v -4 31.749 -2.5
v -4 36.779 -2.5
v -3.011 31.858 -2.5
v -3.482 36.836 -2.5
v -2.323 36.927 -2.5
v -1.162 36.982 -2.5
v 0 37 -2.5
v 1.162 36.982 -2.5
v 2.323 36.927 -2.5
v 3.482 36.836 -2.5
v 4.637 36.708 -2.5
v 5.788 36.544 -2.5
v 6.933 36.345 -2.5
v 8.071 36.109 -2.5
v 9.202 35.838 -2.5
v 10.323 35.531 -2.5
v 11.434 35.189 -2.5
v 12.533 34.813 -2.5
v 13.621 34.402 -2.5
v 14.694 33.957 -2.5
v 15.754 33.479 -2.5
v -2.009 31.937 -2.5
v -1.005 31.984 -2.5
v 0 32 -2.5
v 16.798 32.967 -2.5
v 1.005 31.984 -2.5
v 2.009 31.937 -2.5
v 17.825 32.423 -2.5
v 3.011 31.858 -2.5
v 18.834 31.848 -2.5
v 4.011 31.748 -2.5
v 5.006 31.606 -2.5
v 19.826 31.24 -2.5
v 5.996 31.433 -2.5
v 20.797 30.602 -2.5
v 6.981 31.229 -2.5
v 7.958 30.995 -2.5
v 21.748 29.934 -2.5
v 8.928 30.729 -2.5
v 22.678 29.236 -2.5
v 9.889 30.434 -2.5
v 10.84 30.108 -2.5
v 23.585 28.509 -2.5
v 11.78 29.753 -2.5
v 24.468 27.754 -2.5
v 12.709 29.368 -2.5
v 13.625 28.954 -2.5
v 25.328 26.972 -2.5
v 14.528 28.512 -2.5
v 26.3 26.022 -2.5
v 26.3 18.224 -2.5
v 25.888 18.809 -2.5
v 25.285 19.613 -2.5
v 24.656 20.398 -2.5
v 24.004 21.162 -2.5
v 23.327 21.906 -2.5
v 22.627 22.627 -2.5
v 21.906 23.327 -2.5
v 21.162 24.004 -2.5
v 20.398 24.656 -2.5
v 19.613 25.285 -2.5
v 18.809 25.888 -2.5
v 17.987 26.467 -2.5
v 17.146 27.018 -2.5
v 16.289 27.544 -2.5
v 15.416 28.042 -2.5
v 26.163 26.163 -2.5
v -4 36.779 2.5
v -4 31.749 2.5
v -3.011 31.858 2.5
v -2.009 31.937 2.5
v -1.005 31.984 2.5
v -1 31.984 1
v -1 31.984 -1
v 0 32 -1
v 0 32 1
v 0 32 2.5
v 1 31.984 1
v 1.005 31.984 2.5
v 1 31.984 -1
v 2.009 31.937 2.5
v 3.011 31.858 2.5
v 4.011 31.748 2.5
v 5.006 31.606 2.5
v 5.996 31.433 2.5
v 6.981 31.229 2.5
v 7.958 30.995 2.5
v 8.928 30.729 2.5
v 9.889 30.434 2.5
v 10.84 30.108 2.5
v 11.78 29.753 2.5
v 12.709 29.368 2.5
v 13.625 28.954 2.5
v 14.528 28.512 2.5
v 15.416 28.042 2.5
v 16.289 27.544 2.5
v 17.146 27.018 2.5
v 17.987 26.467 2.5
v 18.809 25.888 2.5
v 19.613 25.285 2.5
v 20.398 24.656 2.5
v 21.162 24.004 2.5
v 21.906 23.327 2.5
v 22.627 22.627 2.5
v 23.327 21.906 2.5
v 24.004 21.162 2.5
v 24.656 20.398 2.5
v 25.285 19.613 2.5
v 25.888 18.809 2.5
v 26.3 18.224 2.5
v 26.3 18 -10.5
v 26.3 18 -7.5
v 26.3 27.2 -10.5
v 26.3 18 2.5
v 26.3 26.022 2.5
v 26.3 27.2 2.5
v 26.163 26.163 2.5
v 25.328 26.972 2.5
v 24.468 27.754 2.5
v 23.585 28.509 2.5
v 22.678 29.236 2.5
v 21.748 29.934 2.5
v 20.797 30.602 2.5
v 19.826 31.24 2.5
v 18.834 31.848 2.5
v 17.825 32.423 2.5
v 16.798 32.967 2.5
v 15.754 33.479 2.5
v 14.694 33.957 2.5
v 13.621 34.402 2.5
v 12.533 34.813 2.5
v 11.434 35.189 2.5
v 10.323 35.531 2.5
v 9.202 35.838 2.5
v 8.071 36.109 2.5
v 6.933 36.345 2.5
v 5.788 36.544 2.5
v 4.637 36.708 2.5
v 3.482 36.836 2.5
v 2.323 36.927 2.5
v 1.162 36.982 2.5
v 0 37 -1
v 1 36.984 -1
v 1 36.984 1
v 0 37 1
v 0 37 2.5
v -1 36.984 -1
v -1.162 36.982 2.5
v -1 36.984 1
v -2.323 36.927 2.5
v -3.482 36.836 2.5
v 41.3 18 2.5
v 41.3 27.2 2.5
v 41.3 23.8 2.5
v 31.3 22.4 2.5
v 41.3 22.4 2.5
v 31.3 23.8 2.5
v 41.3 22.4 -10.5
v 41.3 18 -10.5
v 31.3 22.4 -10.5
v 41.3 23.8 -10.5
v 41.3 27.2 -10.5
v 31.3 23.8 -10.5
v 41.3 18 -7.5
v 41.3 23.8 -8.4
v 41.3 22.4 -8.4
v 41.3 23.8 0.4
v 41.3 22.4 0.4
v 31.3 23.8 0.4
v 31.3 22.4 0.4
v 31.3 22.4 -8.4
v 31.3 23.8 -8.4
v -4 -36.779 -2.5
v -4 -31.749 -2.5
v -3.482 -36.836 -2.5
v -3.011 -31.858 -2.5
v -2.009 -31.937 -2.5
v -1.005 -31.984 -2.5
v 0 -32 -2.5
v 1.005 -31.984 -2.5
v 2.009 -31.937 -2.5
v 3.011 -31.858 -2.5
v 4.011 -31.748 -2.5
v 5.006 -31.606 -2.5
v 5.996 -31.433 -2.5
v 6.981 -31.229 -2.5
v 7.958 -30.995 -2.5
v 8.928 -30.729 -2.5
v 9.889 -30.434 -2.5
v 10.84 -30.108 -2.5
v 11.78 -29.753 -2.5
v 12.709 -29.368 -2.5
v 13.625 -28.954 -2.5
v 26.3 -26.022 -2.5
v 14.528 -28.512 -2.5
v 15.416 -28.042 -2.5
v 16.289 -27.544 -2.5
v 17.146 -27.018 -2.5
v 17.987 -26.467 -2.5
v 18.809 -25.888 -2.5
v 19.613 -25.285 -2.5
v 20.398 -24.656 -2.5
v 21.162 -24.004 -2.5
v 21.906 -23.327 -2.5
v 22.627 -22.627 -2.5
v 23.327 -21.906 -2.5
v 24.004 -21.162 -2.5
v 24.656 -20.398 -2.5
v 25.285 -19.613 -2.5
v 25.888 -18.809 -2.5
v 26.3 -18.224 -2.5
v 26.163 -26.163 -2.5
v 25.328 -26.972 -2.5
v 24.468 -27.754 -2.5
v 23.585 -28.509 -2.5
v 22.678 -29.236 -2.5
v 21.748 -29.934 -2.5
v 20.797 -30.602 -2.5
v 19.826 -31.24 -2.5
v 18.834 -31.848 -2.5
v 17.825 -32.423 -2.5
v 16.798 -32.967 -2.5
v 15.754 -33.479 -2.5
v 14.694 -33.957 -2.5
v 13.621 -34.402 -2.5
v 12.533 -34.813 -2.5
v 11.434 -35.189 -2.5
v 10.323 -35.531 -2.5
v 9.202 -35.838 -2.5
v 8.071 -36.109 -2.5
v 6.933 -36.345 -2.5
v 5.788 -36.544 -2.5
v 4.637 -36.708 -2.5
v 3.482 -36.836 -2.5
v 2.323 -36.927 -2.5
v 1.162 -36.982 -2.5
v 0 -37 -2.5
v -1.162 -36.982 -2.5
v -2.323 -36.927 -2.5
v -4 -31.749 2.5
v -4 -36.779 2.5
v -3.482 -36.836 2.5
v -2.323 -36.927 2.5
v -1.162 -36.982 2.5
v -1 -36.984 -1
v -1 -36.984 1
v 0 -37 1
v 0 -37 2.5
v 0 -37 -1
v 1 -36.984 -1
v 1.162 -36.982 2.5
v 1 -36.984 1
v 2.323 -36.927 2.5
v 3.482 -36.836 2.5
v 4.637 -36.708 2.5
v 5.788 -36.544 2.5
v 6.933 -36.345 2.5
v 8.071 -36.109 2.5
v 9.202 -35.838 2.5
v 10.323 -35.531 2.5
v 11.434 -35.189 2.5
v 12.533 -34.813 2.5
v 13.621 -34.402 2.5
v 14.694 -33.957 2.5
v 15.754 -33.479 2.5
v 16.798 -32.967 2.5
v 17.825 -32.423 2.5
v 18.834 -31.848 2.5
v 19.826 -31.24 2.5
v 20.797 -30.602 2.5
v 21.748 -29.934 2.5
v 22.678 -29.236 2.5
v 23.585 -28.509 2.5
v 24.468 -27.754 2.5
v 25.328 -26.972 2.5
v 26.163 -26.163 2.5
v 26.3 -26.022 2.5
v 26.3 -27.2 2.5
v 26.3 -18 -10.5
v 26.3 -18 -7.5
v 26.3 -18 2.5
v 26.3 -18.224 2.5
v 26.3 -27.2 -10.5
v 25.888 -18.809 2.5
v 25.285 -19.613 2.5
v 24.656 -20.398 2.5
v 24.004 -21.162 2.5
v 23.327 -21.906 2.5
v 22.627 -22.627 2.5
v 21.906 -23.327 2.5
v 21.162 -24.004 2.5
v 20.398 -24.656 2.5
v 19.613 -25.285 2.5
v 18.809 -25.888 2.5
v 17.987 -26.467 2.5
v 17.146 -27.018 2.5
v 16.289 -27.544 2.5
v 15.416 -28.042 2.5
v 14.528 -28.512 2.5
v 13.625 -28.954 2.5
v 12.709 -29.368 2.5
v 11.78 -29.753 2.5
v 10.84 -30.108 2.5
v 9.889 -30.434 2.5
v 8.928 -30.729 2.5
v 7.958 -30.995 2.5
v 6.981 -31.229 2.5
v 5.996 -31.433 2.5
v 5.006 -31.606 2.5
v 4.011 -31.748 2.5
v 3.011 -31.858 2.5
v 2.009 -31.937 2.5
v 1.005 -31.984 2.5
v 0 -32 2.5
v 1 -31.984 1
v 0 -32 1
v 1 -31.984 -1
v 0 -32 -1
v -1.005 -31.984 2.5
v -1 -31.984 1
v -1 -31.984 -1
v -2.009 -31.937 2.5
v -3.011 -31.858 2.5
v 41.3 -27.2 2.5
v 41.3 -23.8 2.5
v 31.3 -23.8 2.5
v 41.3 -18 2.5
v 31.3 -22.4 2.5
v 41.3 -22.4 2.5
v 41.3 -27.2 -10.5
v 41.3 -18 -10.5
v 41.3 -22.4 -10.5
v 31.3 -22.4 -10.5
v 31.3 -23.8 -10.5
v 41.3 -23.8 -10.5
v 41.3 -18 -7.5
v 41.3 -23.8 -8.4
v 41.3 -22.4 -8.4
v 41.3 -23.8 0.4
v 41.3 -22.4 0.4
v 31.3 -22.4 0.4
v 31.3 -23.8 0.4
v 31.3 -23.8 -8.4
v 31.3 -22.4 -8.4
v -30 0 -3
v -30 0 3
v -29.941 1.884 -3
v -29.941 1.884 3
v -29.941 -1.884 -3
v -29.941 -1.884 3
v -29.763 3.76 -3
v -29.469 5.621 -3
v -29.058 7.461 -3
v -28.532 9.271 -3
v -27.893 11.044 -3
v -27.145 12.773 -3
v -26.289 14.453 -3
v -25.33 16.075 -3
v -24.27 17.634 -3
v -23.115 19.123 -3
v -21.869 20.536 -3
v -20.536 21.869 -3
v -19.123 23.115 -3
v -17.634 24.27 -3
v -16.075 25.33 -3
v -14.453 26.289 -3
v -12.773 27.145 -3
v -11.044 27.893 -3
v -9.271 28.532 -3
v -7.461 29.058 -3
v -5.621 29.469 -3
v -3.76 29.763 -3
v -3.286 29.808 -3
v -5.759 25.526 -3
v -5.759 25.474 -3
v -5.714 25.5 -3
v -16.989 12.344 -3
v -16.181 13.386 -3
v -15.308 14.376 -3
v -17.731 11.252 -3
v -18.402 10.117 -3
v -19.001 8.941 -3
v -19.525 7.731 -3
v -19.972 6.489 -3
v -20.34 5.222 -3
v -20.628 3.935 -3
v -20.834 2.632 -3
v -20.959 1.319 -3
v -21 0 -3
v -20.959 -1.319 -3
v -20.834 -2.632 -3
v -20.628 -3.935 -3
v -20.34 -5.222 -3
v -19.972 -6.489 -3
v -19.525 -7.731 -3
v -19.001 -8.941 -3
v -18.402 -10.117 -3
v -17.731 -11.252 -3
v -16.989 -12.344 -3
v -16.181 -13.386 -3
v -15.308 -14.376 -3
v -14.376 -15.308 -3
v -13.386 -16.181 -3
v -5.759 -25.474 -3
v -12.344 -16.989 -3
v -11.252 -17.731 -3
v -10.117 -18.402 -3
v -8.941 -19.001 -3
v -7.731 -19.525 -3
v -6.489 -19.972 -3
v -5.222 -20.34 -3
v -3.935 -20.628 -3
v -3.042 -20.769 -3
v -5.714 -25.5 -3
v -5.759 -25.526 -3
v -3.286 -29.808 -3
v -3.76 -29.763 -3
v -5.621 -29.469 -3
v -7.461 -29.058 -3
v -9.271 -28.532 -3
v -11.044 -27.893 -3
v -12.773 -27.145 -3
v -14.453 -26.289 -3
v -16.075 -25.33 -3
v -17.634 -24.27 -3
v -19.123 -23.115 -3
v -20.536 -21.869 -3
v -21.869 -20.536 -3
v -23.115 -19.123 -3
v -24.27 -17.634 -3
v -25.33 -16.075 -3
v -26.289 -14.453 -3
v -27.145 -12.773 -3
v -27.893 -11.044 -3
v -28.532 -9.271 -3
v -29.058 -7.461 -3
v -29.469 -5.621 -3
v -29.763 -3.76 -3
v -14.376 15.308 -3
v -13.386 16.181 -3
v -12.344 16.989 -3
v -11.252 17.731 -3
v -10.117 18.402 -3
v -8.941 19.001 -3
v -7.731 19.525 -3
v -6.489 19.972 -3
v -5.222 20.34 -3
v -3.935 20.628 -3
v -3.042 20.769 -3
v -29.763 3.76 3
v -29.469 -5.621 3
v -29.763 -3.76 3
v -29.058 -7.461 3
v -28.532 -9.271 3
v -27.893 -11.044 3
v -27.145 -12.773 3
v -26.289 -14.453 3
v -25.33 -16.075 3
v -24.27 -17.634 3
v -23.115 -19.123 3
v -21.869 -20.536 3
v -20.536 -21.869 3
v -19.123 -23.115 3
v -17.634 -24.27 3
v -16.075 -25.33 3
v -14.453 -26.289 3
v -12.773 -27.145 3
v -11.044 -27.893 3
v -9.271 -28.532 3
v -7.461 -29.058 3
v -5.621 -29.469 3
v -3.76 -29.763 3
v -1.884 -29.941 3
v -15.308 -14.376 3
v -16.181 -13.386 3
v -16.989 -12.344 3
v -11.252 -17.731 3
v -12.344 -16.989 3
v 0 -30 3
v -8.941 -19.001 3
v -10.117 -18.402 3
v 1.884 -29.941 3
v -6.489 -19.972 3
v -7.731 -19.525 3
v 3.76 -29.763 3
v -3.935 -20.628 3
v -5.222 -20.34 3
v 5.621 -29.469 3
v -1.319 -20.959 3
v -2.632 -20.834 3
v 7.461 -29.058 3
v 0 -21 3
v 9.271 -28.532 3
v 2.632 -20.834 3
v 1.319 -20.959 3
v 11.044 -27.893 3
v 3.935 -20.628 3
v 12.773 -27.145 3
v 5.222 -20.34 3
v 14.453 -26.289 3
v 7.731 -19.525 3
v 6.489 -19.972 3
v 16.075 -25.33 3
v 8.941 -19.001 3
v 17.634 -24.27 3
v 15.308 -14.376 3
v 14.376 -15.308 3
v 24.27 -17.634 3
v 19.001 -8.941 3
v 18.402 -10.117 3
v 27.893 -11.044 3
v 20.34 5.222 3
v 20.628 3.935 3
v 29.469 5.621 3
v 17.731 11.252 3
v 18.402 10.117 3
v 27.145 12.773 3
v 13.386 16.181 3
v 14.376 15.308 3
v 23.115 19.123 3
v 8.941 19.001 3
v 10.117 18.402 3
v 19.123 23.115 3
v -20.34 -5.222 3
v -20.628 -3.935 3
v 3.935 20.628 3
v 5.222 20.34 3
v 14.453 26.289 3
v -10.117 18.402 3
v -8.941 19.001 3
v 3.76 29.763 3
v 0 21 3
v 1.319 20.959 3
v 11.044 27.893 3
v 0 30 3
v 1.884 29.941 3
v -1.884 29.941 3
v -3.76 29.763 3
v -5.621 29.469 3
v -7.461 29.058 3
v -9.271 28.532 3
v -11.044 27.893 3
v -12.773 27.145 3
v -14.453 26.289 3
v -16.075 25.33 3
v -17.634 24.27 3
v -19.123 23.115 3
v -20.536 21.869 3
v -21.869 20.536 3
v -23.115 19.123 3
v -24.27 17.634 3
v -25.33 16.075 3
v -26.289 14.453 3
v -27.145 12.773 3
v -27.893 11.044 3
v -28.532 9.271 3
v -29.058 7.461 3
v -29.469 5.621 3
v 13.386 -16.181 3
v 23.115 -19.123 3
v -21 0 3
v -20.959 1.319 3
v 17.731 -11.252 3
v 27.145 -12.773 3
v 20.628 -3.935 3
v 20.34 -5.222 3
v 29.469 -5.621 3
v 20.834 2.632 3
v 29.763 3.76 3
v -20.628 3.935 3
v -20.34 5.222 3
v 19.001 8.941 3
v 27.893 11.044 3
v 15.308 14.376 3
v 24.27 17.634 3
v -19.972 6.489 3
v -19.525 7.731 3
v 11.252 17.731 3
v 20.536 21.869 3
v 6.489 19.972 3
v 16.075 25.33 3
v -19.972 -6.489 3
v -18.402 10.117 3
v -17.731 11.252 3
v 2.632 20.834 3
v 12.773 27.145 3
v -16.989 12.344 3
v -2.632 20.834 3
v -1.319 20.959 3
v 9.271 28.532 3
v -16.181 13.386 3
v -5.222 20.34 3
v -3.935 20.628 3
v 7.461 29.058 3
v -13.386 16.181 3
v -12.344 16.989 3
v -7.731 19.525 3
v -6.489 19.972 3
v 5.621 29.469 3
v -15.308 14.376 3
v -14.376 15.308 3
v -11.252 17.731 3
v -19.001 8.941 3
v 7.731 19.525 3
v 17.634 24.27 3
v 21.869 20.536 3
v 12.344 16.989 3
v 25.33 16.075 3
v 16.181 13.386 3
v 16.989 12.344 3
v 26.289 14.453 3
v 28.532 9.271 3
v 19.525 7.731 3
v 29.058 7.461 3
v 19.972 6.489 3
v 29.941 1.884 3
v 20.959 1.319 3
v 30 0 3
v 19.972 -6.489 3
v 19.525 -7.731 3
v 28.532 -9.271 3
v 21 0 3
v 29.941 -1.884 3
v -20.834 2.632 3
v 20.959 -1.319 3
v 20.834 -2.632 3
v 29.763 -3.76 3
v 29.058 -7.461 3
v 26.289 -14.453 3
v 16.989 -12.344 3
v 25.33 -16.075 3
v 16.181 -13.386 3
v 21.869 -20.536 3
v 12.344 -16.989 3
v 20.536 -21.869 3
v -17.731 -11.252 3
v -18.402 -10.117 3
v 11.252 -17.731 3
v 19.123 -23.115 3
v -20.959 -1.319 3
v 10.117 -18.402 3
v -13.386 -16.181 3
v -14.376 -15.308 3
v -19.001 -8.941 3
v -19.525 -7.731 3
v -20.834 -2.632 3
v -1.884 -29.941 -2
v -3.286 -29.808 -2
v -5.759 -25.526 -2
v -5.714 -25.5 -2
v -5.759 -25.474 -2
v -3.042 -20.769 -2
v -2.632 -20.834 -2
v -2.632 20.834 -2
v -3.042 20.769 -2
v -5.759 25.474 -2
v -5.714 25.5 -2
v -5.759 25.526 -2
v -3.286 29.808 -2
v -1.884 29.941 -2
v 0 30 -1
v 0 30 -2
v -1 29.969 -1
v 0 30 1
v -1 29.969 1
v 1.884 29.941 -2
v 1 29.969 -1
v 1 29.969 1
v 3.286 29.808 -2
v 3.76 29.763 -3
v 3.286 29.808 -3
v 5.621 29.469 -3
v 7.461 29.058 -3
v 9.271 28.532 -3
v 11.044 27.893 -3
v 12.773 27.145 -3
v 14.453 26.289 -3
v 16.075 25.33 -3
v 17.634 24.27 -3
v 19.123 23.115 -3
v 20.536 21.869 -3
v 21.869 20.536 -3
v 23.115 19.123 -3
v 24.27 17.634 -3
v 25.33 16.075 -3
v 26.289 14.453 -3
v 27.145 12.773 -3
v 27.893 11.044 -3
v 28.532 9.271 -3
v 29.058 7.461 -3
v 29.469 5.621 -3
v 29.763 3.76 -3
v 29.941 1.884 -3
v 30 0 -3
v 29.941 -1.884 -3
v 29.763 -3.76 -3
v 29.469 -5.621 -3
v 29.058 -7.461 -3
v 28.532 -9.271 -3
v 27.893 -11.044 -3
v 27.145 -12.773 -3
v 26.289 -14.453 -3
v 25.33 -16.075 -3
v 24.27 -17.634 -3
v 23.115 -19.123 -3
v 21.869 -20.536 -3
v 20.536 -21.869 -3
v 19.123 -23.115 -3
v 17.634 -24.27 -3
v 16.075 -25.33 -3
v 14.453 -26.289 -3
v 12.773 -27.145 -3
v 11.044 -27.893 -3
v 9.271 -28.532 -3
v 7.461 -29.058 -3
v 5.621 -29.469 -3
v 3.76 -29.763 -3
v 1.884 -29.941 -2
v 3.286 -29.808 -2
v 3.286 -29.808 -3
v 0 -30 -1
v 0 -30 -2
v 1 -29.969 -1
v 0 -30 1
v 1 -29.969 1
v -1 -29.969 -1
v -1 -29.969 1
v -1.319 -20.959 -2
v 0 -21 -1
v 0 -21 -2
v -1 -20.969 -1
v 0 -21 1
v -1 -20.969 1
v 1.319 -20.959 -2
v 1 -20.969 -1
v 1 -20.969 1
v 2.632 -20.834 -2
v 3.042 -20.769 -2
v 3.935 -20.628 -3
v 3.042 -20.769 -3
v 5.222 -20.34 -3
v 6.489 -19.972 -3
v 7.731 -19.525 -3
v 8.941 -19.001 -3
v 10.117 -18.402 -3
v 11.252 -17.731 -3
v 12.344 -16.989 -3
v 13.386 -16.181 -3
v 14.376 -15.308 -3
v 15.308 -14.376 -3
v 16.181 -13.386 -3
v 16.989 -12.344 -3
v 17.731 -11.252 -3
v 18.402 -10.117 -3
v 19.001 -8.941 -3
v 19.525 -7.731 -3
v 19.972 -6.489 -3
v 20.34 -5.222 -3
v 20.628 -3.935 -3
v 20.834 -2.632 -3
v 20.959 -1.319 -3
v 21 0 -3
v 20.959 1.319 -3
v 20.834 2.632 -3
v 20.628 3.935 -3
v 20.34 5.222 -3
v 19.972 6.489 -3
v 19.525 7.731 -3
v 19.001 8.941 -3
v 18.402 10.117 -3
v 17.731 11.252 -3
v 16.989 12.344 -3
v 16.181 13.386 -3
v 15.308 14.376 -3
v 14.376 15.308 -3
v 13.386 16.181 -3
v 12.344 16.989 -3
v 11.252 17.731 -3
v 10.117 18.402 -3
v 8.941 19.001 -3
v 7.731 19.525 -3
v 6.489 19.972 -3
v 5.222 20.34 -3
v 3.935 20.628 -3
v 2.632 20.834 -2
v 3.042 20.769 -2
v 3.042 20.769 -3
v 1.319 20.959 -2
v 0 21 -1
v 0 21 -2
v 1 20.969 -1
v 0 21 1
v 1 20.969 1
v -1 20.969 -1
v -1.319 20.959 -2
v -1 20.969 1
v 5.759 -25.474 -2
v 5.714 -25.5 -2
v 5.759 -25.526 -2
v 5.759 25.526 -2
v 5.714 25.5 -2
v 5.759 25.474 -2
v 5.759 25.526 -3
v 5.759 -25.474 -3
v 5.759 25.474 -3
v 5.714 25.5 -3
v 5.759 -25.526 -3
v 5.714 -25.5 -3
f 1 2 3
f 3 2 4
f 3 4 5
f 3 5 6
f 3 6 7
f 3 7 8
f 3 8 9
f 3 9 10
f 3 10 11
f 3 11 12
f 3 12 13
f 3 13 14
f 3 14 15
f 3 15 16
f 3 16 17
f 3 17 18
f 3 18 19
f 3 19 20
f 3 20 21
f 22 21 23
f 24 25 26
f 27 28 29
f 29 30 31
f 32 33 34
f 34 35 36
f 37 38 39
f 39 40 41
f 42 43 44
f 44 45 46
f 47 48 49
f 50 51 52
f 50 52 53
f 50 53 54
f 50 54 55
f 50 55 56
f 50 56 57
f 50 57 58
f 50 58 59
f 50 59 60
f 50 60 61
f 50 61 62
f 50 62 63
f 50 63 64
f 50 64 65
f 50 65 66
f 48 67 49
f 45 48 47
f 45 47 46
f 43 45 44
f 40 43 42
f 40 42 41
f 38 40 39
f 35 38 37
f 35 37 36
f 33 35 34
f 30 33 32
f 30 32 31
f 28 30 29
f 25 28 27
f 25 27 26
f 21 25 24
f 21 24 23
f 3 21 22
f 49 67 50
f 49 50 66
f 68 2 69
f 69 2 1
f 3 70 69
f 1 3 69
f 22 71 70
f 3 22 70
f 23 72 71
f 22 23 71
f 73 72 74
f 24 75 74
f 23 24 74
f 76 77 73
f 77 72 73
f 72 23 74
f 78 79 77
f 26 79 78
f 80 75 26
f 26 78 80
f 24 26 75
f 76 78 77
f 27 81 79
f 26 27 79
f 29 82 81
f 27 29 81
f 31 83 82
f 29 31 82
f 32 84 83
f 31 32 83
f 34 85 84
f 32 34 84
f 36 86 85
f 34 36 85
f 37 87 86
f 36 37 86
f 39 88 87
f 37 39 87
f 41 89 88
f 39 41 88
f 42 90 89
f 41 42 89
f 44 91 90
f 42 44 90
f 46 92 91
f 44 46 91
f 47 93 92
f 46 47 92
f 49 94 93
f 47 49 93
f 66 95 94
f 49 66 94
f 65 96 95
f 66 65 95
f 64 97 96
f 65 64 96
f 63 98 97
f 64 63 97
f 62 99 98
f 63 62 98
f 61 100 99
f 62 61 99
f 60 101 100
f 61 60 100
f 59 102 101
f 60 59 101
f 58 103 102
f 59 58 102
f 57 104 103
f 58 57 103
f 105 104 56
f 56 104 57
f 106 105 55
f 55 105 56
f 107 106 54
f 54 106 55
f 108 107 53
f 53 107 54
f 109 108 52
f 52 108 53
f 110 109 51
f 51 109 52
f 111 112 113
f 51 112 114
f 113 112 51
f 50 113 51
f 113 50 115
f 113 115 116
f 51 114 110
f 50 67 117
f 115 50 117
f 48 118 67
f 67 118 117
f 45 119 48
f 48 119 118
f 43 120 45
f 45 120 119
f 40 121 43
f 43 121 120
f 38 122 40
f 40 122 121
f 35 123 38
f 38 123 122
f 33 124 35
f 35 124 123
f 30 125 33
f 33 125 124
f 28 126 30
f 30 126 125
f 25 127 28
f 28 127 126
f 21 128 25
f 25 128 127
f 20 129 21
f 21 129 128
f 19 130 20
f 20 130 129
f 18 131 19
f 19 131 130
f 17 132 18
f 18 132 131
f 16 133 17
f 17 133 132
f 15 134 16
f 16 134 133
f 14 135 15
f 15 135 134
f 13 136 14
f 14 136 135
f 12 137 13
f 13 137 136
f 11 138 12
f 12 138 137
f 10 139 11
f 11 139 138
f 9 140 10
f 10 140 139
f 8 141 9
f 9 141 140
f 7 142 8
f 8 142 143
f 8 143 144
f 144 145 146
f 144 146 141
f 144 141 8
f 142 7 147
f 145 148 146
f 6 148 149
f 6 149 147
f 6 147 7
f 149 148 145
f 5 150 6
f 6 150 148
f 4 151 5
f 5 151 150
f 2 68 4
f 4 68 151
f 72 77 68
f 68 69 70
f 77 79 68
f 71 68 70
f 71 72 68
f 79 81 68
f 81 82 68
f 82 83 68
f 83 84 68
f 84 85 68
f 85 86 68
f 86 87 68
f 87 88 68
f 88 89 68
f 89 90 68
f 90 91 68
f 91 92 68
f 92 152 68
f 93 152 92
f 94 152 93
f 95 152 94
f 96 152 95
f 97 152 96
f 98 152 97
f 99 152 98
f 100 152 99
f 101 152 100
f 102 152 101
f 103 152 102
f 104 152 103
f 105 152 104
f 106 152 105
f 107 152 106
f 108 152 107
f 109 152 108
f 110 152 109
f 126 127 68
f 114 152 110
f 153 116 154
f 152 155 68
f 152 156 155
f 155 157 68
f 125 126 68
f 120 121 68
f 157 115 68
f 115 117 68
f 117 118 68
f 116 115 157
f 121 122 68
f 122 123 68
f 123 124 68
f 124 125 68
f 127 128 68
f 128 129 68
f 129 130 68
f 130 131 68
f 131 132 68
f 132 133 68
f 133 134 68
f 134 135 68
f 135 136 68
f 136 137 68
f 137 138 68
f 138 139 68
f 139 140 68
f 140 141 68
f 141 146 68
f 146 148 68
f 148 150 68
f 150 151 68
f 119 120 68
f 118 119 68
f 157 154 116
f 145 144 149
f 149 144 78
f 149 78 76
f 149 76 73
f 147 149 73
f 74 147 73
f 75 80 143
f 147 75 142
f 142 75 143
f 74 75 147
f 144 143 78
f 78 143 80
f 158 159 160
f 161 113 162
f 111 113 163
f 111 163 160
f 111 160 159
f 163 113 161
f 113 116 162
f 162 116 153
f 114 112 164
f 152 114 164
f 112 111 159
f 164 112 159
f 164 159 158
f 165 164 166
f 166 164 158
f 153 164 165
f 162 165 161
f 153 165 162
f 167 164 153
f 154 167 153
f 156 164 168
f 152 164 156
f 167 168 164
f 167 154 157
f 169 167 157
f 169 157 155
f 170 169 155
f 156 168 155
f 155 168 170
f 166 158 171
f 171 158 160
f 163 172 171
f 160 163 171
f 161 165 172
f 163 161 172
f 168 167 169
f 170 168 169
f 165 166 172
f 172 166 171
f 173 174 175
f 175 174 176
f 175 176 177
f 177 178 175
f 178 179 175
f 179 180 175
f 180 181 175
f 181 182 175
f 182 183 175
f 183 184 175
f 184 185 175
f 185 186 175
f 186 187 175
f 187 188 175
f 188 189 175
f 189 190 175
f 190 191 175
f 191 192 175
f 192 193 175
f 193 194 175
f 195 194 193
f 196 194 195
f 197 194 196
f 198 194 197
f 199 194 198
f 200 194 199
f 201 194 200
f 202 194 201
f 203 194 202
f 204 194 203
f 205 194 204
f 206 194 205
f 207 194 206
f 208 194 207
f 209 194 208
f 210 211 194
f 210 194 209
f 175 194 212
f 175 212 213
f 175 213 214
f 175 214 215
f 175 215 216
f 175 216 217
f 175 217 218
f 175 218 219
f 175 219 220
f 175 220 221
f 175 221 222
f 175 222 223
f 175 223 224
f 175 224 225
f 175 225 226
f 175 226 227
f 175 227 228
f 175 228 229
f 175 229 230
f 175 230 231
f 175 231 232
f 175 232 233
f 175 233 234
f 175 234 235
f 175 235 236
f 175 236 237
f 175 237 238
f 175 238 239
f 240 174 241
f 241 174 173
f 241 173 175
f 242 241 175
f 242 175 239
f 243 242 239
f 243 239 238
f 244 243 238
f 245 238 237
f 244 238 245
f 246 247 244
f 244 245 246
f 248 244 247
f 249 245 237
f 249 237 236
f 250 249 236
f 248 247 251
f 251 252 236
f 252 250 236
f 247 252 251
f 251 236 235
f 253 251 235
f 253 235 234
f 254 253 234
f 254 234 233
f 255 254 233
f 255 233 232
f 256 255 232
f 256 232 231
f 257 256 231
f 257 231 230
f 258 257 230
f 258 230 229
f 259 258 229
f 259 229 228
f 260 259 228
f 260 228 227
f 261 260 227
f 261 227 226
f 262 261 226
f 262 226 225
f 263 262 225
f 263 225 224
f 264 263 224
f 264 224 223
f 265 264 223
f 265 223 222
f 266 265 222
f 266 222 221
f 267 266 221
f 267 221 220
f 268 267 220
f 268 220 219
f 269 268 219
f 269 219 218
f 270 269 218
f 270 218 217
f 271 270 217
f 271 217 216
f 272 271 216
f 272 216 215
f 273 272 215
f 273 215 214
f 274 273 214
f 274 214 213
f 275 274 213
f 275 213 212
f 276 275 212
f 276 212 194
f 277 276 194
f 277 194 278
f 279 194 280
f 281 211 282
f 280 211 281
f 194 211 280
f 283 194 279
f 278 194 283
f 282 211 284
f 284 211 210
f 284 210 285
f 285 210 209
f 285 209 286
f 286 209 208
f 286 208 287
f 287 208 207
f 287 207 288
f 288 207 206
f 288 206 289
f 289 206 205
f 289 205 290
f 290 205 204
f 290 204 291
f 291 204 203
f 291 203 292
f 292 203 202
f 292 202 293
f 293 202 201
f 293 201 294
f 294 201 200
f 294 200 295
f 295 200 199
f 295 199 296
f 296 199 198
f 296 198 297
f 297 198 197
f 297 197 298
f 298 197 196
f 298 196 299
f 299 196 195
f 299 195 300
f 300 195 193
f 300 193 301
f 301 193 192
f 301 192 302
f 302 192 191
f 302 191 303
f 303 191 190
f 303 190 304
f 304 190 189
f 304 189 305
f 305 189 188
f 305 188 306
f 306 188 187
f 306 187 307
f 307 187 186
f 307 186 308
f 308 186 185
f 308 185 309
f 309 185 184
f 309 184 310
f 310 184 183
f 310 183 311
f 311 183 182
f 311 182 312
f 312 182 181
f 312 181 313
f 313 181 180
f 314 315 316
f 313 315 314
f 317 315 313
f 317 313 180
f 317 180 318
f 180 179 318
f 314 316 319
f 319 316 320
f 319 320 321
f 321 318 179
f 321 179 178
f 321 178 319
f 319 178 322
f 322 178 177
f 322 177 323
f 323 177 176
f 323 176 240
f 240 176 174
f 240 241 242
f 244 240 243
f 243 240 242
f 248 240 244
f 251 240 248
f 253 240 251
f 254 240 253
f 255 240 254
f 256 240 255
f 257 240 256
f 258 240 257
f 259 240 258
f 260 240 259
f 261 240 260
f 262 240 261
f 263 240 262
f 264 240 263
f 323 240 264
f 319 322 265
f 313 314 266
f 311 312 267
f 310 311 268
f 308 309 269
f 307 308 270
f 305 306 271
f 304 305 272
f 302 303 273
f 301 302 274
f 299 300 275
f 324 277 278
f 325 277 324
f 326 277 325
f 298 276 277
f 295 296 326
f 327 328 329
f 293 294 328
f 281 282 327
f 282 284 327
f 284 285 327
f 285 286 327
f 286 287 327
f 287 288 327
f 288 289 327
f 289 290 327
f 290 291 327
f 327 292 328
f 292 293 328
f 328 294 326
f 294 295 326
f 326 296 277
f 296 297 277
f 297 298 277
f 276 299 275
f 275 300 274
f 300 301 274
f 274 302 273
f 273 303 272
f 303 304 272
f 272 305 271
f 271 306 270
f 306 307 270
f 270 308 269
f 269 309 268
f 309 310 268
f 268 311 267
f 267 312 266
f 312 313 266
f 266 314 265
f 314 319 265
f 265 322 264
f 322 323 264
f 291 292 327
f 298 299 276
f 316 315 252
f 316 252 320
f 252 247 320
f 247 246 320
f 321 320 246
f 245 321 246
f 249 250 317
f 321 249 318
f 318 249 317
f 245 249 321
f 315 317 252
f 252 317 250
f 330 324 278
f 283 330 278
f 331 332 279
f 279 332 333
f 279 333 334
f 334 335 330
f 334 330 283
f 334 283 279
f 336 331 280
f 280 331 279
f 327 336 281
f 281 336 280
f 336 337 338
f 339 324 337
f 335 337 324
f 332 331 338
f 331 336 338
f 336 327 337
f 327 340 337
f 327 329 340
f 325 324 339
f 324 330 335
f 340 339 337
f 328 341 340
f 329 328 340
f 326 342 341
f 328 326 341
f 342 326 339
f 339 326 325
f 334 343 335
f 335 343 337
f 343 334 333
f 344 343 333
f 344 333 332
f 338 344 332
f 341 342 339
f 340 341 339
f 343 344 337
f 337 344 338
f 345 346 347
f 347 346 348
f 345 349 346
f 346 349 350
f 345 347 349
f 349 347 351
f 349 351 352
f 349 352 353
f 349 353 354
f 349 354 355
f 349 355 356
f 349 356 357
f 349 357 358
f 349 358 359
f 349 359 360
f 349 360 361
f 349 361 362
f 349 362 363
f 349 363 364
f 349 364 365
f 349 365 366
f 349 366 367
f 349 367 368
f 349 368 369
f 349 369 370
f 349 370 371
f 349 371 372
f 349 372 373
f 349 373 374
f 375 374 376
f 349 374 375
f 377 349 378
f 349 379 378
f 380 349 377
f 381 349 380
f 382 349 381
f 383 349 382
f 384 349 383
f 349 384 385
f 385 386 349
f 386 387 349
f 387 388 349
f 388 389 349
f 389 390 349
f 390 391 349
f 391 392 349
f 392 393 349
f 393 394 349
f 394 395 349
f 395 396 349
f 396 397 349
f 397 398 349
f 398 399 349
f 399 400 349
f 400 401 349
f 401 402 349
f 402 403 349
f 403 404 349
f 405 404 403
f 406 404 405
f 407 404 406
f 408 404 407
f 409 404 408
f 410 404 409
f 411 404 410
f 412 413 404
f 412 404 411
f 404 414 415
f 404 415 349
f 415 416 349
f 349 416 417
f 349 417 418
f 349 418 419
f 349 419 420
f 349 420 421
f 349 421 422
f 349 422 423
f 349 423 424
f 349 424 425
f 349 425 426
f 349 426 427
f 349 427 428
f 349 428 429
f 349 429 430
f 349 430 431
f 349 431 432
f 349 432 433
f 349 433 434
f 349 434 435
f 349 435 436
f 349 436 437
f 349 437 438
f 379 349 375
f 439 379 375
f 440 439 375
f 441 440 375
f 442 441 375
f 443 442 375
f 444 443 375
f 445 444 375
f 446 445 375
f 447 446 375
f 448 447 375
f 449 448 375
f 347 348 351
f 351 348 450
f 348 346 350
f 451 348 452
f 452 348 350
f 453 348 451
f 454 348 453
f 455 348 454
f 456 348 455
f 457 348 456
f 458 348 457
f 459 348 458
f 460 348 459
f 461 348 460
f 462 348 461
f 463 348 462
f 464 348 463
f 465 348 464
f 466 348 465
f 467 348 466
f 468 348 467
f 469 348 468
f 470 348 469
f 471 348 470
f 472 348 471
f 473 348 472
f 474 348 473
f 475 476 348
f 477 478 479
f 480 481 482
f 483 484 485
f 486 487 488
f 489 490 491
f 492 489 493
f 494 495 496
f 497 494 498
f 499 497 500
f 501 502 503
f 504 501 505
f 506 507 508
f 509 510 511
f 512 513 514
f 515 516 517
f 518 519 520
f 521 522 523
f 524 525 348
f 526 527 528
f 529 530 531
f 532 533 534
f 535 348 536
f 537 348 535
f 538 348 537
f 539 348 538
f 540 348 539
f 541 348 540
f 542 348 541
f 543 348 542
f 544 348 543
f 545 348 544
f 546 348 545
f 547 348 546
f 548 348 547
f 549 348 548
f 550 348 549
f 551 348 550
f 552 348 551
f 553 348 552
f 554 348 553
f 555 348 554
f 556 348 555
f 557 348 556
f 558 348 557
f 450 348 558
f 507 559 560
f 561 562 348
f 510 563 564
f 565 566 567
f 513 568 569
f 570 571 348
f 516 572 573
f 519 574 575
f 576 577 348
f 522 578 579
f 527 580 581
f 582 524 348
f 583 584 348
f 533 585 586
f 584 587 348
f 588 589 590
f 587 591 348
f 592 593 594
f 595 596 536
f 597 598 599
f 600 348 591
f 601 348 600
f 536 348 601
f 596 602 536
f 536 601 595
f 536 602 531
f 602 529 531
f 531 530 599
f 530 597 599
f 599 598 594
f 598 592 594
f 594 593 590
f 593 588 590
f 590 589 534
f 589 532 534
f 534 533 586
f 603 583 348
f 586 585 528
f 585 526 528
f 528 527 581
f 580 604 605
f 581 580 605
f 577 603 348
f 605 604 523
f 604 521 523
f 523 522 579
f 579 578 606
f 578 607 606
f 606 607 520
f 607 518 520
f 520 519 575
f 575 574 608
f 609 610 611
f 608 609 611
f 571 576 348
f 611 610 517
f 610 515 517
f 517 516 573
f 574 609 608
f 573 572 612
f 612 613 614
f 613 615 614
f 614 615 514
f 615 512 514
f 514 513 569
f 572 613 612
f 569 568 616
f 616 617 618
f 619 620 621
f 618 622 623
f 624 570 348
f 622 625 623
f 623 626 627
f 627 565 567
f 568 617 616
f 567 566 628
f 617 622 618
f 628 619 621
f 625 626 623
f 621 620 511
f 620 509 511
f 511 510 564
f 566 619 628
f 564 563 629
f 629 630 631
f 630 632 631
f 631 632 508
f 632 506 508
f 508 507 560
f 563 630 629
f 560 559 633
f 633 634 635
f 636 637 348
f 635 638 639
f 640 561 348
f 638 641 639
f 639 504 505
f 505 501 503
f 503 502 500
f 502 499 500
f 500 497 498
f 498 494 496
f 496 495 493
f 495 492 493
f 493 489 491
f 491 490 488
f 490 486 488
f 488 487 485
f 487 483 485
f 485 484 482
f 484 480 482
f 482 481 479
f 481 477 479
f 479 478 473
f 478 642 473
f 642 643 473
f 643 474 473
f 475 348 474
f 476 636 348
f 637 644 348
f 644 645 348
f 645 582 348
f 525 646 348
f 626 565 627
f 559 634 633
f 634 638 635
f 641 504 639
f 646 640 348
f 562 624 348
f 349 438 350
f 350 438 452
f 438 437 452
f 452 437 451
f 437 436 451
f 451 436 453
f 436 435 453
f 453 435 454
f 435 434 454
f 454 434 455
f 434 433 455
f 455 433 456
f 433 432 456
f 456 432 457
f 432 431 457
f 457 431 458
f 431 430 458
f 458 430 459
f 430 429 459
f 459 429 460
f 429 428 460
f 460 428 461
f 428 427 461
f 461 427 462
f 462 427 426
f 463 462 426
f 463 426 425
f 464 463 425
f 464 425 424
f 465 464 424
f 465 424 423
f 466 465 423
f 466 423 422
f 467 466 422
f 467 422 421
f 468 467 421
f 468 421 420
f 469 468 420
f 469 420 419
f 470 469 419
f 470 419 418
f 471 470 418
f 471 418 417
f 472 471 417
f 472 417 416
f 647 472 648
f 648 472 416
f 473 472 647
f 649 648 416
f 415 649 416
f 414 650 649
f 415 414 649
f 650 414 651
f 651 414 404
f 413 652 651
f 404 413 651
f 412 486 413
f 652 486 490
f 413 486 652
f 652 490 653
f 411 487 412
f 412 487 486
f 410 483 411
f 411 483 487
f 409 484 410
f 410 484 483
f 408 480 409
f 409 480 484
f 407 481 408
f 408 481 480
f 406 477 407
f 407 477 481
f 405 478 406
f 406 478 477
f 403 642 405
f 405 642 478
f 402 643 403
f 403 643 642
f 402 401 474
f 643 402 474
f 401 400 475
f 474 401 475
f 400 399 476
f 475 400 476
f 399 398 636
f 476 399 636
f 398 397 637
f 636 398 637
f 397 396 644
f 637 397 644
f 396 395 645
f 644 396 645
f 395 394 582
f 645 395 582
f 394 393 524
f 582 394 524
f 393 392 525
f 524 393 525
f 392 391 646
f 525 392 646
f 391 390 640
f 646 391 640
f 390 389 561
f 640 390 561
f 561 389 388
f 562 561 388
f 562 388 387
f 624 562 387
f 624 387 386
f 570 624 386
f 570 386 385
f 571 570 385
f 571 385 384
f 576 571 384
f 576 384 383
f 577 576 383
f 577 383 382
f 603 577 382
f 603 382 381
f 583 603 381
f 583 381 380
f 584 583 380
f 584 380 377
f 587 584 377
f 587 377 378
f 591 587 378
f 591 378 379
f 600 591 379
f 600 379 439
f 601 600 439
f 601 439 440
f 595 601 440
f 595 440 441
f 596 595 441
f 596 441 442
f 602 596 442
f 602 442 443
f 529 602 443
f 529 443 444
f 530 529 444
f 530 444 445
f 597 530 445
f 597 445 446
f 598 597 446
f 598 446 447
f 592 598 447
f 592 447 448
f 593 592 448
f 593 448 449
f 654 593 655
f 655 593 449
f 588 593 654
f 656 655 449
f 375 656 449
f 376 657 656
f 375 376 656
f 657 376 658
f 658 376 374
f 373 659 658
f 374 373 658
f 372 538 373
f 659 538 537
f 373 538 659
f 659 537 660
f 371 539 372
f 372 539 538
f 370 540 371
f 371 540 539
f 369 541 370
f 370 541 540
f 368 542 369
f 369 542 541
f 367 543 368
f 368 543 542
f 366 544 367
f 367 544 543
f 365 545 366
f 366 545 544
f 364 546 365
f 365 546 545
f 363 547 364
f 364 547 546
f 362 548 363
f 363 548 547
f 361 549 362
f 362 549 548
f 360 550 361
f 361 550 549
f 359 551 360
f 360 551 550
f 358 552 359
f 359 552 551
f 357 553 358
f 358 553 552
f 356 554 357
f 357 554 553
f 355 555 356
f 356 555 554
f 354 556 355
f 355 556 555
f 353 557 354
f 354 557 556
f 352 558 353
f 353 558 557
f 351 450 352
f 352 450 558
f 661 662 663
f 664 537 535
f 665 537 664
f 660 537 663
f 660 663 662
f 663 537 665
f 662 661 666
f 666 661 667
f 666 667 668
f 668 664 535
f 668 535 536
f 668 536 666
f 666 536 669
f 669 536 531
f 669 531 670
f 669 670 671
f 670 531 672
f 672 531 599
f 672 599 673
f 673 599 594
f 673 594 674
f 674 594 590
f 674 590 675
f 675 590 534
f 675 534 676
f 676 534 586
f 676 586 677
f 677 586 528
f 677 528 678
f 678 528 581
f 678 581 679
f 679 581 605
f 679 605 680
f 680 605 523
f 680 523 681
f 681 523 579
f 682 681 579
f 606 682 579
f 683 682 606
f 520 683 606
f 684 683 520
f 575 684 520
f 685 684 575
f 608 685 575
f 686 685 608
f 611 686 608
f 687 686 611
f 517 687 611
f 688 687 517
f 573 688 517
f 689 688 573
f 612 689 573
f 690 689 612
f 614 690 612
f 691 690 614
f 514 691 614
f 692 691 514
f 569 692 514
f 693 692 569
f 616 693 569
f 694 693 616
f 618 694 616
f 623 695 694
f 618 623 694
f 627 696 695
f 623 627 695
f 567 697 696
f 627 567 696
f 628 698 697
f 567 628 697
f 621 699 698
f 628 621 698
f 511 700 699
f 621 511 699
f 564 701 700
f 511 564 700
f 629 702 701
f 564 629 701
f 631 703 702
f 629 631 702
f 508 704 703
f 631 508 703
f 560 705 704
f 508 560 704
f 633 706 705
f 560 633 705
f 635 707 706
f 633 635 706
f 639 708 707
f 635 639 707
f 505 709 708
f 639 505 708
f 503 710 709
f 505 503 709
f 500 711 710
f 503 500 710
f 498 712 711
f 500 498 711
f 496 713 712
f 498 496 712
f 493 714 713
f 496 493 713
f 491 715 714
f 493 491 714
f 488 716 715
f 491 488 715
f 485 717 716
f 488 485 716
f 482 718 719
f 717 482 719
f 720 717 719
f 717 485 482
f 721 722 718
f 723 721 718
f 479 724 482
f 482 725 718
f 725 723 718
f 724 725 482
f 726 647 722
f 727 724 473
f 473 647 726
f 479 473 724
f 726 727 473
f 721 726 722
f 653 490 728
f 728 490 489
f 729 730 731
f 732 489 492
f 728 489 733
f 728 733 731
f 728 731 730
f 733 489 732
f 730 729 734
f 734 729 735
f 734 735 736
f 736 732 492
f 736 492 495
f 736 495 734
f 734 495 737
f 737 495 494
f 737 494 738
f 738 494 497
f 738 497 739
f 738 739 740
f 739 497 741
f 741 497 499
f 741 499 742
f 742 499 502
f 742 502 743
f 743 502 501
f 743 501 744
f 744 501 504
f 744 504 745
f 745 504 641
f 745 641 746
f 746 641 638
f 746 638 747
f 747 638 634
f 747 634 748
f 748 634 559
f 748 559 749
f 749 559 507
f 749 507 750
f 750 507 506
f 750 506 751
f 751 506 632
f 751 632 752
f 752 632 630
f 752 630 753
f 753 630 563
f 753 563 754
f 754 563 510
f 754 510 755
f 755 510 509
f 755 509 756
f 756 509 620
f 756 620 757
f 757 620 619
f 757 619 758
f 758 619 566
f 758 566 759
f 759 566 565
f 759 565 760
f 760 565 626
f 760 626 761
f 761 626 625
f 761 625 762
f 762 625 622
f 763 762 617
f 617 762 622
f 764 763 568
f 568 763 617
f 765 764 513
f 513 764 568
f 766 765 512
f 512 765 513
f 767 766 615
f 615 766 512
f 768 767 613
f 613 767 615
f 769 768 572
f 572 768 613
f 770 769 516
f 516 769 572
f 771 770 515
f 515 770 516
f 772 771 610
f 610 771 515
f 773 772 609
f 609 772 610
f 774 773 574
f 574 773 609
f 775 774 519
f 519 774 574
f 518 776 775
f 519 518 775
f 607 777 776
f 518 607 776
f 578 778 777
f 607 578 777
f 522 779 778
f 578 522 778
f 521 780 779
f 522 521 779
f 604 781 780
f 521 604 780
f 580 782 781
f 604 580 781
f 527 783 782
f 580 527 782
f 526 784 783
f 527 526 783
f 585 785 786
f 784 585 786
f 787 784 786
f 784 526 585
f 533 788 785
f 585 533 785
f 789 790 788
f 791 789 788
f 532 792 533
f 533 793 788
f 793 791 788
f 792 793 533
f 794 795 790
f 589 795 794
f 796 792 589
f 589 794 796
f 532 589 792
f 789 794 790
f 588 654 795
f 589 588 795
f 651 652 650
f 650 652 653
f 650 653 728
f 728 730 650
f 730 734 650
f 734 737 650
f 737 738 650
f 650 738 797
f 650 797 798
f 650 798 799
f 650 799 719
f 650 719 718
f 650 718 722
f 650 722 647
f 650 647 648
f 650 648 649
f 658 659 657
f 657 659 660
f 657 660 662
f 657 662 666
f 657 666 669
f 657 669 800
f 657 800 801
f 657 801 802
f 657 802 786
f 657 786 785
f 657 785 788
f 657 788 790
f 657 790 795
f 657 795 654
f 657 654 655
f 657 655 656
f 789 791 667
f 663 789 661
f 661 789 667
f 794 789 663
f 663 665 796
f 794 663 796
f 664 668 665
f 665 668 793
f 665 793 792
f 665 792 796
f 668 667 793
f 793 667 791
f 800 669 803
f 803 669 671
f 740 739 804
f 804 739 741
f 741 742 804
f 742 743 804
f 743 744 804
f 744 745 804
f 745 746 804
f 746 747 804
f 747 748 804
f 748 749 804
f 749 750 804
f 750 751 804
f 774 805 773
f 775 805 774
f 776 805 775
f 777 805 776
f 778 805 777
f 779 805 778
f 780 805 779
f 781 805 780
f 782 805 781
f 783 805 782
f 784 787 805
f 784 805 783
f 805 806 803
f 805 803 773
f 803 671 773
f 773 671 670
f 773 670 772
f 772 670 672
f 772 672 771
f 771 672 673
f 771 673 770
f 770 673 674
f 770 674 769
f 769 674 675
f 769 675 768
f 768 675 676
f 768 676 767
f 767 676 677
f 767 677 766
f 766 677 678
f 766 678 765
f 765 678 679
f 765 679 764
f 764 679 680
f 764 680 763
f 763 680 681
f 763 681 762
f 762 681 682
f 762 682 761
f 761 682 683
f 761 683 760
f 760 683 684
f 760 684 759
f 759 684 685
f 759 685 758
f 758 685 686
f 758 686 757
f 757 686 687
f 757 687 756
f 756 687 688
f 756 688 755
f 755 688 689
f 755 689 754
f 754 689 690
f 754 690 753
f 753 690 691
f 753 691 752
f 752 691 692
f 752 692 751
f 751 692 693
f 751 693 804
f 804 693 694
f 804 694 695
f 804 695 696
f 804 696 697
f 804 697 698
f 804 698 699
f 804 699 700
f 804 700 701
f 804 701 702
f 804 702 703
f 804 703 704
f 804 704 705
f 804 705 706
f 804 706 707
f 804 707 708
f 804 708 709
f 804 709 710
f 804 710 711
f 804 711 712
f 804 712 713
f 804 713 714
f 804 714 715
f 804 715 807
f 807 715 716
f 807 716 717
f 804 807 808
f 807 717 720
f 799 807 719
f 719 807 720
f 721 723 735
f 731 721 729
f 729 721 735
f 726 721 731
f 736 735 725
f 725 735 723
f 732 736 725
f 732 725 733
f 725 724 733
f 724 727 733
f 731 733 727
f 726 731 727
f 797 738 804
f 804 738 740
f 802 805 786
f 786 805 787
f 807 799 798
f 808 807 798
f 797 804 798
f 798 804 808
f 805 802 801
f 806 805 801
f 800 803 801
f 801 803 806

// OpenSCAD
	

module hexagram(size, height) {
  boxWidth=size/1.75;
  for (v = [[0,1],[0,-1],[1,-1]]) {
    union() {
      rotate([0,0,60*v[0]]) cube([size, boxWidth, height], true);
      rotate([0,0,60*v[1]]) cube([size, boxWidth, height], true);
    }
  }
}

module ring(radius, width, height)  {
	w = width/2;
   h = height/2;
	rotate_extrude(convexity = 10, $fn = 100)
	translate([radius, 0, 0])
//	circle(r = thickness/2, $fn = 100);
   polygon(points=[[-w,-h],[-w,h],[w,h],[w,-h]]);
}

tap_width = 9;
tap_height = 6;
tap_outer_radius = 30;
mount_radius = 32;
mount_width = 5;
mount_height = 5;


module tap() {
	rotate([0,0,90])
	difference() {
		ring(tap_outer_radius - tap_width/2, tap_width, tap_height);
		translate([tap_outer_radius-tap_width/2,0,-4.5])
			hexagram(10, 5);
		translate([-(tap_outer_radius-tap_width/2),0,-4.5])
			hexagram(10, 5);
		translate([tap_outer_radius-14,-1,-1])
			cube([15,2,2]);
		translate([-tap_outer_radius,-1,-1])
			cube([15,2,2]);
	}
}

tap();

module mount() {
	translate([0,0,mount_height/2])
	difference() {
		union() {
			translate([26.3,18,-13])
			leverage_mount();
			mirror([0,1,0])
			translate([26.3,18,-13])
			leverage_mount();
			translate([0,0,-mount_height])
			difference() {
				cylinder(h = mount_height, r = mount_radius+mount_width,$fn=200);
				cylinder(h = mount_height, r = mount_radius, $fn=200);	
			}
		}
		translate([-54,-50,-10])
		cube([50,100,20]);
		translate([0,-18,-10])
		cube([50,36,20]);
		translate([-1,-mount_radius-13,-1-mount_height/2])
			cube([2,15,2]);
		translate([-1,mount_radius-2,-1-mount_height/2])
			cube([2,15,2]);
	}
}

module leverage_mount() {
	difference() {
		cube([15,9.2,13]);
		translate([5,4.4,0])
			cube([10,1.4,2.1]);
		translate([5,4.4,13-2.1])
			cube([10,1.4,2.1]);
	}
}

mount();
